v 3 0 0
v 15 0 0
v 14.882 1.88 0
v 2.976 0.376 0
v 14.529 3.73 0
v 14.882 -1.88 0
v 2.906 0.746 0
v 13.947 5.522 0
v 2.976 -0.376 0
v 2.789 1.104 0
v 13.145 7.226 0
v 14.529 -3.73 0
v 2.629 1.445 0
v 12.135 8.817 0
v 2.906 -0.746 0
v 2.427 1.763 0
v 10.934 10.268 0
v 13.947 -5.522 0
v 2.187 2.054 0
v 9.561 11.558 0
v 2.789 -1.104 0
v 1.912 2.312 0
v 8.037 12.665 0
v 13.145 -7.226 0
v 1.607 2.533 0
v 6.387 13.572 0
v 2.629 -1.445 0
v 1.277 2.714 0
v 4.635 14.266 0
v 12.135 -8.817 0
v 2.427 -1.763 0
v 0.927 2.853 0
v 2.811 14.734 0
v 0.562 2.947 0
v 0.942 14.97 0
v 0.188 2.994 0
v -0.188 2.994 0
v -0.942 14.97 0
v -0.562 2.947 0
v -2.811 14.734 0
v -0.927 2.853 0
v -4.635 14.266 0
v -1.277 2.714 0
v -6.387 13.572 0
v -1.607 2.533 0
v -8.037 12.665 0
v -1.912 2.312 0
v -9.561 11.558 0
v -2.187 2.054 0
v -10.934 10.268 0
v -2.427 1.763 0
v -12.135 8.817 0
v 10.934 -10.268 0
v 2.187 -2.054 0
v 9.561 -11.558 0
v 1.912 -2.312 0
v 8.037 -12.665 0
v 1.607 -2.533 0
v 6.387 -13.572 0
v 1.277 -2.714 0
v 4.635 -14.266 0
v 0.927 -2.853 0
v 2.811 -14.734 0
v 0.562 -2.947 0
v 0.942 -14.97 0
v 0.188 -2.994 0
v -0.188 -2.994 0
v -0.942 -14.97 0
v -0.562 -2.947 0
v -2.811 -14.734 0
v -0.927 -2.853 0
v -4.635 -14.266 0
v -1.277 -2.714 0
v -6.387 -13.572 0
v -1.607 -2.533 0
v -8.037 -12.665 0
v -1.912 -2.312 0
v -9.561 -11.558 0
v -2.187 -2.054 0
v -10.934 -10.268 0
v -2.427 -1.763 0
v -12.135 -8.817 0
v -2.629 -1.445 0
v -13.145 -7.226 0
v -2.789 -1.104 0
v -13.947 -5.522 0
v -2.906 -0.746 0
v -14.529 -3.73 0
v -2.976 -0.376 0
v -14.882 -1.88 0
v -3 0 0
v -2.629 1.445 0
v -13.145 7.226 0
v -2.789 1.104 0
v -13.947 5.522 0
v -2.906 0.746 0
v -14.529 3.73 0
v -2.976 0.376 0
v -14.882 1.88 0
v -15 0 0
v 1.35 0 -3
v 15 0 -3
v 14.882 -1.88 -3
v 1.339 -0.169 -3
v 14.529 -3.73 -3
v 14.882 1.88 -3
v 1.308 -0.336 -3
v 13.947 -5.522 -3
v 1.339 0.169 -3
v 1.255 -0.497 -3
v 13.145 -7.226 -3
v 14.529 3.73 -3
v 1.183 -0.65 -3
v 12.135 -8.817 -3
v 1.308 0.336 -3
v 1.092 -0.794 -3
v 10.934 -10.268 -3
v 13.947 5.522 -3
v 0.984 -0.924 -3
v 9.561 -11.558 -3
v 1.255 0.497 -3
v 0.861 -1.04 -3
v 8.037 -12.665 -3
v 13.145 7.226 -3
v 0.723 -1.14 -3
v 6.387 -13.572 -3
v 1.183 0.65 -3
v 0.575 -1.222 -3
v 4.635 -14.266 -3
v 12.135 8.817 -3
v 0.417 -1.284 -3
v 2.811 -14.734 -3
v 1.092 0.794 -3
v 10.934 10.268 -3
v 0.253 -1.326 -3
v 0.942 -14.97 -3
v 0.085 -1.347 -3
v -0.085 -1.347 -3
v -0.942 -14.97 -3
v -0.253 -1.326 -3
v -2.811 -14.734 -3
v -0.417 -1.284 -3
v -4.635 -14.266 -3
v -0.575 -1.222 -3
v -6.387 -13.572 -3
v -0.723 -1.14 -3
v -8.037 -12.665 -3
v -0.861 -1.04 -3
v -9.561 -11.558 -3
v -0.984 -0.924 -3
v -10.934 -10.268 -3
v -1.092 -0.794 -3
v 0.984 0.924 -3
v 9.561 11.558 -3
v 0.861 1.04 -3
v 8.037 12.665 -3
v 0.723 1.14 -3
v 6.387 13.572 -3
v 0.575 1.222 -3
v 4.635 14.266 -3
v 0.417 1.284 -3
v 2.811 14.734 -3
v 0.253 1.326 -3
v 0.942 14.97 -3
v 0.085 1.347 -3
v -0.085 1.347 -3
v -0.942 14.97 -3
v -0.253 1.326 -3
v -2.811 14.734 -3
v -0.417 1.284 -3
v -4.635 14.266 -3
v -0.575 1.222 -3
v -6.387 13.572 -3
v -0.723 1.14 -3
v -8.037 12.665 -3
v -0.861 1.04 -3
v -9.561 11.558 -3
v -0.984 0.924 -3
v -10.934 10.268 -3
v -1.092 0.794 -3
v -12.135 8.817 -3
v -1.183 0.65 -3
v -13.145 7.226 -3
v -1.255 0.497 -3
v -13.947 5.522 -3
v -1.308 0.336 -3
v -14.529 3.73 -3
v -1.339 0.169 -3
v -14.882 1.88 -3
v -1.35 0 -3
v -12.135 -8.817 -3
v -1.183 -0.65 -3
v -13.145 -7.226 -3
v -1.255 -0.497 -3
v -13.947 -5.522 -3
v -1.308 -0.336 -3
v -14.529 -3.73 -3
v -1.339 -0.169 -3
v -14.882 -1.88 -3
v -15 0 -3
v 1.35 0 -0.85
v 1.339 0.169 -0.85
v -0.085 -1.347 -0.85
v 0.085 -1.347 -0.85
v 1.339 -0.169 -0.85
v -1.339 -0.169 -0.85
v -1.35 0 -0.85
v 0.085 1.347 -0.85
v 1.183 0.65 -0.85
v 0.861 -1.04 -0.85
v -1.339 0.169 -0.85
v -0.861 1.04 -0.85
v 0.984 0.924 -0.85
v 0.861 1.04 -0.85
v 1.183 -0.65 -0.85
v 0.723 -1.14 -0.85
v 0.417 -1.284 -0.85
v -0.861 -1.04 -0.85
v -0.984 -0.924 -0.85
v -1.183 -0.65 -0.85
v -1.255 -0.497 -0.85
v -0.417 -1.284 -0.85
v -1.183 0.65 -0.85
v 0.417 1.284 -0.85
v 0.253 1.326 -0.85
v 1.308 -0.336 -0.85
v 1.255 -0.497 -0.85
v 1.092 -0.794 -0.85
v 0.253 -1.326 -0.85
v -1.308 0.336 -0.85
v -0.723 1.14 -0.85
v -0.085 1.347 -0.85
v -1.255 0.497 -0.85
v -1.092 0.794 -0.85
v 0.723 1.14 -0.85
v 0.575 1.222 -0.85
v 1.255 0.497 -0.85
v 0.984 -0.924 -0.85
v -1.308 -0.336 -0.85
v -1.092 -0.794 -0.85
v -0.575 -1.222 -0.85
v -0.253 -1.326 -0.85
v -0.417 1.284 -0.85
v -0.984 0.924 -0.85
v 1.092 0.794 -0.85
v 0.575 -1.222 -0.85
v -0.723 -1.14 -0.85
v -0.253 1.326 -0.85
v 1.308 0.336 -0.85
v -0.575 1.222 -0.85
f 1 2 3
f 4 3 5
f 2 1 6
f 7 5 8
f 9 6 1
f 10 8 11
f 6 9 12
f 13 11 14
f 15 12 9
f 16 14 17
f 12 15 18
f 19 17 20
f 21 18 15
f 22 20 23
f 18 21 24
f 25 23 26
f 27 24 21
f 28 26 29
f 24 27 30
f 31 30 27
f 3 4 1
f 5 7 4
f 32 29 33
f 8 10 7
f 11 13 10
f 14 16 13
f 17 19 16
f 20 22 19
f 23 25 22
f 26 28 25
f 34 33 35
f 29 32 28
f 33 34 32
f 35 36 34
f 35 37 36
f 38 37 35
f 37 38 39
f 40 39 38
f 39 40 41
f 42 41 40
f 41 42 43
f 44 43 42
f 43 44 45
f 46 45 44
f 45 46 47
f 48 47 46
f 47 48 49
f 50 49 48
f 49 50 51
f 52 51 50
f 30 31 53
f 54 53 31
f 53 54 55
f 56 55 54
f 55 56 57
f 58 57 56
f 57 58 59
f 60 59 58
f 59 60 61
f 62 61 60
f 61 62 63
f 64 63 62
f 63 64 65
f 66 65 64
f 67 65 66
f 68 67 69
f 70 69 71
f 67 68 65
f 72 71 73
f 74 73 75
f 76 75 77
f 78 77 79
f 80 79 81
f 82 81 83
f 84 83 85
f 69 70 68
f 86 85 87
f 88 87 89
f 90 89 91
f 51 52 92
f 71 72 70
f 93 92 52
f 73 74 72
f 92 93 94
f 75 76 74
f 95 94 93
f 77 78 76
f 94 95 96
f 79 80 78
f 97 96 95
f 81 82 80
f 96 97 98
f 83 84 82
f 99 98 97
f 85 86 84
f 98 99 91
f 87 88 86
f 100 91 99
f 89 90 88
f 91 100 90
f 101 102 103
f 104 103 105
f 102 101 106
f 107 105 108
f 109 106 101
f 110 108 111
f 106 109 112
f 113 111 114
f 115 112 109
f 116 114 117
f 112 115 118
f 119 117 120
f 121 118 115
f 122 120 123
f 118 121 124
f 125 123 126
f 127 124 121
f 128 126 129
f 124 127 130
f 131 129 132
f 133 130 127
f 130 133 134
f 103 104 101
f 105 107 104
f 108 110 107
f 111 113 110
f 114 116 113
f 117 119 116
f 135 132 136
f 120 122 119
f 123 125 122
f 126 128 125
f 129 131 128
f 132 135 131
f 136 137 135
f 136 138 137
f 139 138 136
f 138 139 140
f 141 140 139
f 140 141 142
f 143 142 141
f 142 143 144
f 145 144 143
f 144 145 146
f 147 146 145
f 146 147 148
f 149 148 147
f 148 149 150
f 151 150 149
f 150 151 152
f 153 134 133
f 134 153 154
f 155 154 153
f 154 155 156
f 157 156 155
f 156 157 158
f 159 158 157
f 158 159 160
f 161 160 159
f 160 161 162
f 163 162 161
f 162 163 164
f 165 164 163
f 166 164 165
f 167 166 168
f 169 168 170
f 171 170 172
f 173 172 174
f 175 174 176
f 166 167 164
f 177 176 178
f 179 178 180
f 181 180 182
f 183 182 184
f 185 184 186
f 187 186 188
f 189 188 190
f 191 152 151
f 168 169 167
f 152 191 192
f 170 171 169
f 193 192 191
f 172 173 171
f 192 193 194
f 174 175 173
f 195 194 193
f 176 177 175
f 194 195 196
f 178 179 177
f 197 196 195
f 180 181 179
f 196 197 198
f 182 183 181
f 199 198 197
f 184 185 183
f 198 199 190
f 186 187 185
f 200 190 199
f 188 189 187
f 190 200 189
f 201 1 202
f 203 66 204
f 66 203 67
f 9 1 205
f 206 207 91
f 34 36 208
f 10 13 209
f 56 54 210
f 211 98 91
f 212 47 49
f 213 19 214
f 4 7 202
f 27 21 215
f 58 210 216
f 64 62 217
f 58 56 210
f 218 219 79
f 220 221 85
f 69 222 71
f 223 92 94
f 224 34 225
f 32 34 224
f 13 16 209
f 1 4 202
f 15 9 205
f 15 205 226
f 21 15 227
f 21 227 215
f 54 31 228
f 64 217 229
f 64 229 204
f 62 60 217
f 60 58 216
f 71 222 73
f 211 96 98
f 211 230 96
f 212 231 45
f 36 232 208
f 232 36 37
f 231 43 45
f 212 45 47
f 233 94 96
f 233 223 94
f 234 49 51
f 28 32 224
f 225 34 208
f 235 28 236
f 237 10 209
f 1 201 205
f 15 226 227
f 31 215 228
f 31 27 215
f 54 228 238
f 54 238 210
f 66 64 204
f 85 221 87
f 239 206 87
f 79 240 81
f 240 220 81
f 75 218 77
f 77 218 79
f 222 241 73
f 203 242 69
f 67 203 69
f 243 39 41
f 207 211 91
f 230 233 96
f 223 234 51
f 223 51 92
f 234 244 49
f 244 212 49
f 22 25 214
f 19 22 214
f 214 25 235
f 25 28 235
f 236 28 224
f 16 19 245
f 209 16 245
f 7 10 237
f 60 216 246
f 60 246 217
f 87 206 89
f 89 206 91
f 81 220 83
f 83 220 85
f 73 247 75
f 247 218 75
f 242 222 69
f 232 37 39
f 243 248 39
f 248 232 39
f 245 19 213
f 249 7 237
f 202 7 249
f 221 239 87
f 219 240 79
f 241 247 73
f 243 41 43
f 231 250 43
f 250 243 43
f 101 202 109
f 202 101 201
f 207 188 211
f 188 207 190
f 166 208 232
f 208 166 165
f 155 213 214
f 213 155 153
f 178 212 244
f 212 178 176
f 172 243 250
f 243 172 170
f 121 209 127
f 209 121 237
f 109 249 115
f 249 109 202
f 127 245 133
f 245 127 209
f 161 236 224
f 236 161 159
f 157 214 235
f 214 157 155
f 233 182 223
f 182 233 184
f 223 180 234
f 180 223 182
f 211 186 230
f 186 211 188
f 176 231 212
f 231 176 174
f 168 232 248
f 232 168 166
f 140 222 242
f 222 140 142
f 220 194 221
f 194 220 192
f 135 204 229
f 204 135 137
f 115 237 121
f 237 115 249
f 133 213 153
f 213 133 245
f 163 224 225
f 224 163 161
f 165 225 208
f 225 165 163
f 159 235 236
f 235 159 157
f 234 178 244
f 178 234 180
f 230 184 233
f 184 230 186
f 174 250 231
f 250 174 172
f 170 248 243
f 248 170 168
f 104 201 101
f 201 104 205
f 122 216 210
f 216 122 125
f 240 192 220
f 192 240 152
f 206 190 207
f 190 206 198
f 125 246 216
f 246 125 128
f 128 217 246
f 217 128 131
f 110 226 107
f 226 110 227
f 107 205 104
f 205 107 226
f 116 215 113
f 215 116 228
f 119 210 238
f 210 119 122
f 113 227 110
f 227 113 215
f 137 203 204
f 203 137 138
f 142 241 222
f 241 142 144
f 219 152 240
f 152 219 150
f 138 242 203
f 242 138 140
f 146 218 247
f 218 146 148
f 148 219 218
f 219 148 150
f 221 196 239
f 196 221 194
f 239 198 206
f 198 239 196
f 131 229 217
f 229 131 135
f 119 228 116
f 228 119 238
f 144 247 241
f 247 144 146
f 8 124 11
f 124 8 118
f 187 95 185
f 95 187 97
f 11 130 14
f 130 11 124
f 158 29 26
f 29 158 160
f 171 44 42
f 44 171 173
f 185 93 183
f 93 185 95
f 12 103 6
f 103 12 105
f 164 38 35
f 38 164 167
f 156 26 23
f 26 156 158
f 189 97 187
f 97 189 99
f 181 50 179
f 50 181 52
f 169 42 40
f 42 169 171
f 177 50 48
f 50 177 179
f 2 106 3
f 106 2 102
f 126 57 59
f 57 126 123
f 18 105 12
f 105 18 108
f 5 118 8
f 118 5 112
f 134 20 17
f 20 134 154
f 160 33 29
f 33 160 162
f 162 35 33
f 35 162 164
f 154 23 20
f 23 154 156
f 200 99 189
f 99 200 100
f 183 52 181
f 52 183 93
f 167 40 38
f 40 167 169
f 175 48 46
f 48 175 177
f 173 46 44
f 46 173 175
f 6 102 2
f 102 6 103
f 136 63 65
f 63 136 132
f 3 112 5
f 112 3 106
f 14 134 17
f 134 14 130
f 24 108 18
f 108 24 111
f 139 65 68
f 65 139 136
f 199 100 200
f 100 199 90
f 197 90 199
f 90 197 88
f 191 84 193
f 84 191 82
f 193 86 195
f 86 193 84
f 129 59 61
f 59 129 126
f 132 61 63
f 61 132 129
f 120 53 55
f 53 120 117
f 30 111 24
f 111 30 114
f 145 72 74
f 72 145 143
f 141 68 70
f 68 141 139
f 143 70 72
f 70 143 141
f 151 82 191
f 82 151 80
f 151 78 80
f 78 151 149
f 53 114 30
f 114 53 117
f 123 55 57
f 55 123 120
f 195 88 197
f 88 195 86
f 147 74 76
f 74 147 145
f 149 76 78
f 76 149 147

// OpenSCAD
$fn = 50;


difference() {
	union() {
		translate(v = [0, 0, -3.0000000000]) {
			cylinder(h = 3, r = 15.0000000000);
		}
	}
	union() {
		translate(v = [0, 0, 0]) {
			rotate(a = [0, 0, 0]) {
				difference() {
					union() {
						translate(v = [0, 0, -3.0000000000]) {
							cylinder(h = 3, r = 1.0000000000);
						}
						translate(v = [0, 0, -0.8500000000]) {
							cylinder(h = 0.8500000000, r1 = 1.3500000000, r2 = 3.0000000000);
						}
						translate(v = [0, 0, -3.0000000000]) {
							cylinder(h = 3, r = 1.3500000000);
						}
						translate(v = [0, 0, -3.0000000000]) {
							cylinder(h = 3, r = 1.0000000000);
						}
					}
					union();
				}
			}
		}
	}
}
